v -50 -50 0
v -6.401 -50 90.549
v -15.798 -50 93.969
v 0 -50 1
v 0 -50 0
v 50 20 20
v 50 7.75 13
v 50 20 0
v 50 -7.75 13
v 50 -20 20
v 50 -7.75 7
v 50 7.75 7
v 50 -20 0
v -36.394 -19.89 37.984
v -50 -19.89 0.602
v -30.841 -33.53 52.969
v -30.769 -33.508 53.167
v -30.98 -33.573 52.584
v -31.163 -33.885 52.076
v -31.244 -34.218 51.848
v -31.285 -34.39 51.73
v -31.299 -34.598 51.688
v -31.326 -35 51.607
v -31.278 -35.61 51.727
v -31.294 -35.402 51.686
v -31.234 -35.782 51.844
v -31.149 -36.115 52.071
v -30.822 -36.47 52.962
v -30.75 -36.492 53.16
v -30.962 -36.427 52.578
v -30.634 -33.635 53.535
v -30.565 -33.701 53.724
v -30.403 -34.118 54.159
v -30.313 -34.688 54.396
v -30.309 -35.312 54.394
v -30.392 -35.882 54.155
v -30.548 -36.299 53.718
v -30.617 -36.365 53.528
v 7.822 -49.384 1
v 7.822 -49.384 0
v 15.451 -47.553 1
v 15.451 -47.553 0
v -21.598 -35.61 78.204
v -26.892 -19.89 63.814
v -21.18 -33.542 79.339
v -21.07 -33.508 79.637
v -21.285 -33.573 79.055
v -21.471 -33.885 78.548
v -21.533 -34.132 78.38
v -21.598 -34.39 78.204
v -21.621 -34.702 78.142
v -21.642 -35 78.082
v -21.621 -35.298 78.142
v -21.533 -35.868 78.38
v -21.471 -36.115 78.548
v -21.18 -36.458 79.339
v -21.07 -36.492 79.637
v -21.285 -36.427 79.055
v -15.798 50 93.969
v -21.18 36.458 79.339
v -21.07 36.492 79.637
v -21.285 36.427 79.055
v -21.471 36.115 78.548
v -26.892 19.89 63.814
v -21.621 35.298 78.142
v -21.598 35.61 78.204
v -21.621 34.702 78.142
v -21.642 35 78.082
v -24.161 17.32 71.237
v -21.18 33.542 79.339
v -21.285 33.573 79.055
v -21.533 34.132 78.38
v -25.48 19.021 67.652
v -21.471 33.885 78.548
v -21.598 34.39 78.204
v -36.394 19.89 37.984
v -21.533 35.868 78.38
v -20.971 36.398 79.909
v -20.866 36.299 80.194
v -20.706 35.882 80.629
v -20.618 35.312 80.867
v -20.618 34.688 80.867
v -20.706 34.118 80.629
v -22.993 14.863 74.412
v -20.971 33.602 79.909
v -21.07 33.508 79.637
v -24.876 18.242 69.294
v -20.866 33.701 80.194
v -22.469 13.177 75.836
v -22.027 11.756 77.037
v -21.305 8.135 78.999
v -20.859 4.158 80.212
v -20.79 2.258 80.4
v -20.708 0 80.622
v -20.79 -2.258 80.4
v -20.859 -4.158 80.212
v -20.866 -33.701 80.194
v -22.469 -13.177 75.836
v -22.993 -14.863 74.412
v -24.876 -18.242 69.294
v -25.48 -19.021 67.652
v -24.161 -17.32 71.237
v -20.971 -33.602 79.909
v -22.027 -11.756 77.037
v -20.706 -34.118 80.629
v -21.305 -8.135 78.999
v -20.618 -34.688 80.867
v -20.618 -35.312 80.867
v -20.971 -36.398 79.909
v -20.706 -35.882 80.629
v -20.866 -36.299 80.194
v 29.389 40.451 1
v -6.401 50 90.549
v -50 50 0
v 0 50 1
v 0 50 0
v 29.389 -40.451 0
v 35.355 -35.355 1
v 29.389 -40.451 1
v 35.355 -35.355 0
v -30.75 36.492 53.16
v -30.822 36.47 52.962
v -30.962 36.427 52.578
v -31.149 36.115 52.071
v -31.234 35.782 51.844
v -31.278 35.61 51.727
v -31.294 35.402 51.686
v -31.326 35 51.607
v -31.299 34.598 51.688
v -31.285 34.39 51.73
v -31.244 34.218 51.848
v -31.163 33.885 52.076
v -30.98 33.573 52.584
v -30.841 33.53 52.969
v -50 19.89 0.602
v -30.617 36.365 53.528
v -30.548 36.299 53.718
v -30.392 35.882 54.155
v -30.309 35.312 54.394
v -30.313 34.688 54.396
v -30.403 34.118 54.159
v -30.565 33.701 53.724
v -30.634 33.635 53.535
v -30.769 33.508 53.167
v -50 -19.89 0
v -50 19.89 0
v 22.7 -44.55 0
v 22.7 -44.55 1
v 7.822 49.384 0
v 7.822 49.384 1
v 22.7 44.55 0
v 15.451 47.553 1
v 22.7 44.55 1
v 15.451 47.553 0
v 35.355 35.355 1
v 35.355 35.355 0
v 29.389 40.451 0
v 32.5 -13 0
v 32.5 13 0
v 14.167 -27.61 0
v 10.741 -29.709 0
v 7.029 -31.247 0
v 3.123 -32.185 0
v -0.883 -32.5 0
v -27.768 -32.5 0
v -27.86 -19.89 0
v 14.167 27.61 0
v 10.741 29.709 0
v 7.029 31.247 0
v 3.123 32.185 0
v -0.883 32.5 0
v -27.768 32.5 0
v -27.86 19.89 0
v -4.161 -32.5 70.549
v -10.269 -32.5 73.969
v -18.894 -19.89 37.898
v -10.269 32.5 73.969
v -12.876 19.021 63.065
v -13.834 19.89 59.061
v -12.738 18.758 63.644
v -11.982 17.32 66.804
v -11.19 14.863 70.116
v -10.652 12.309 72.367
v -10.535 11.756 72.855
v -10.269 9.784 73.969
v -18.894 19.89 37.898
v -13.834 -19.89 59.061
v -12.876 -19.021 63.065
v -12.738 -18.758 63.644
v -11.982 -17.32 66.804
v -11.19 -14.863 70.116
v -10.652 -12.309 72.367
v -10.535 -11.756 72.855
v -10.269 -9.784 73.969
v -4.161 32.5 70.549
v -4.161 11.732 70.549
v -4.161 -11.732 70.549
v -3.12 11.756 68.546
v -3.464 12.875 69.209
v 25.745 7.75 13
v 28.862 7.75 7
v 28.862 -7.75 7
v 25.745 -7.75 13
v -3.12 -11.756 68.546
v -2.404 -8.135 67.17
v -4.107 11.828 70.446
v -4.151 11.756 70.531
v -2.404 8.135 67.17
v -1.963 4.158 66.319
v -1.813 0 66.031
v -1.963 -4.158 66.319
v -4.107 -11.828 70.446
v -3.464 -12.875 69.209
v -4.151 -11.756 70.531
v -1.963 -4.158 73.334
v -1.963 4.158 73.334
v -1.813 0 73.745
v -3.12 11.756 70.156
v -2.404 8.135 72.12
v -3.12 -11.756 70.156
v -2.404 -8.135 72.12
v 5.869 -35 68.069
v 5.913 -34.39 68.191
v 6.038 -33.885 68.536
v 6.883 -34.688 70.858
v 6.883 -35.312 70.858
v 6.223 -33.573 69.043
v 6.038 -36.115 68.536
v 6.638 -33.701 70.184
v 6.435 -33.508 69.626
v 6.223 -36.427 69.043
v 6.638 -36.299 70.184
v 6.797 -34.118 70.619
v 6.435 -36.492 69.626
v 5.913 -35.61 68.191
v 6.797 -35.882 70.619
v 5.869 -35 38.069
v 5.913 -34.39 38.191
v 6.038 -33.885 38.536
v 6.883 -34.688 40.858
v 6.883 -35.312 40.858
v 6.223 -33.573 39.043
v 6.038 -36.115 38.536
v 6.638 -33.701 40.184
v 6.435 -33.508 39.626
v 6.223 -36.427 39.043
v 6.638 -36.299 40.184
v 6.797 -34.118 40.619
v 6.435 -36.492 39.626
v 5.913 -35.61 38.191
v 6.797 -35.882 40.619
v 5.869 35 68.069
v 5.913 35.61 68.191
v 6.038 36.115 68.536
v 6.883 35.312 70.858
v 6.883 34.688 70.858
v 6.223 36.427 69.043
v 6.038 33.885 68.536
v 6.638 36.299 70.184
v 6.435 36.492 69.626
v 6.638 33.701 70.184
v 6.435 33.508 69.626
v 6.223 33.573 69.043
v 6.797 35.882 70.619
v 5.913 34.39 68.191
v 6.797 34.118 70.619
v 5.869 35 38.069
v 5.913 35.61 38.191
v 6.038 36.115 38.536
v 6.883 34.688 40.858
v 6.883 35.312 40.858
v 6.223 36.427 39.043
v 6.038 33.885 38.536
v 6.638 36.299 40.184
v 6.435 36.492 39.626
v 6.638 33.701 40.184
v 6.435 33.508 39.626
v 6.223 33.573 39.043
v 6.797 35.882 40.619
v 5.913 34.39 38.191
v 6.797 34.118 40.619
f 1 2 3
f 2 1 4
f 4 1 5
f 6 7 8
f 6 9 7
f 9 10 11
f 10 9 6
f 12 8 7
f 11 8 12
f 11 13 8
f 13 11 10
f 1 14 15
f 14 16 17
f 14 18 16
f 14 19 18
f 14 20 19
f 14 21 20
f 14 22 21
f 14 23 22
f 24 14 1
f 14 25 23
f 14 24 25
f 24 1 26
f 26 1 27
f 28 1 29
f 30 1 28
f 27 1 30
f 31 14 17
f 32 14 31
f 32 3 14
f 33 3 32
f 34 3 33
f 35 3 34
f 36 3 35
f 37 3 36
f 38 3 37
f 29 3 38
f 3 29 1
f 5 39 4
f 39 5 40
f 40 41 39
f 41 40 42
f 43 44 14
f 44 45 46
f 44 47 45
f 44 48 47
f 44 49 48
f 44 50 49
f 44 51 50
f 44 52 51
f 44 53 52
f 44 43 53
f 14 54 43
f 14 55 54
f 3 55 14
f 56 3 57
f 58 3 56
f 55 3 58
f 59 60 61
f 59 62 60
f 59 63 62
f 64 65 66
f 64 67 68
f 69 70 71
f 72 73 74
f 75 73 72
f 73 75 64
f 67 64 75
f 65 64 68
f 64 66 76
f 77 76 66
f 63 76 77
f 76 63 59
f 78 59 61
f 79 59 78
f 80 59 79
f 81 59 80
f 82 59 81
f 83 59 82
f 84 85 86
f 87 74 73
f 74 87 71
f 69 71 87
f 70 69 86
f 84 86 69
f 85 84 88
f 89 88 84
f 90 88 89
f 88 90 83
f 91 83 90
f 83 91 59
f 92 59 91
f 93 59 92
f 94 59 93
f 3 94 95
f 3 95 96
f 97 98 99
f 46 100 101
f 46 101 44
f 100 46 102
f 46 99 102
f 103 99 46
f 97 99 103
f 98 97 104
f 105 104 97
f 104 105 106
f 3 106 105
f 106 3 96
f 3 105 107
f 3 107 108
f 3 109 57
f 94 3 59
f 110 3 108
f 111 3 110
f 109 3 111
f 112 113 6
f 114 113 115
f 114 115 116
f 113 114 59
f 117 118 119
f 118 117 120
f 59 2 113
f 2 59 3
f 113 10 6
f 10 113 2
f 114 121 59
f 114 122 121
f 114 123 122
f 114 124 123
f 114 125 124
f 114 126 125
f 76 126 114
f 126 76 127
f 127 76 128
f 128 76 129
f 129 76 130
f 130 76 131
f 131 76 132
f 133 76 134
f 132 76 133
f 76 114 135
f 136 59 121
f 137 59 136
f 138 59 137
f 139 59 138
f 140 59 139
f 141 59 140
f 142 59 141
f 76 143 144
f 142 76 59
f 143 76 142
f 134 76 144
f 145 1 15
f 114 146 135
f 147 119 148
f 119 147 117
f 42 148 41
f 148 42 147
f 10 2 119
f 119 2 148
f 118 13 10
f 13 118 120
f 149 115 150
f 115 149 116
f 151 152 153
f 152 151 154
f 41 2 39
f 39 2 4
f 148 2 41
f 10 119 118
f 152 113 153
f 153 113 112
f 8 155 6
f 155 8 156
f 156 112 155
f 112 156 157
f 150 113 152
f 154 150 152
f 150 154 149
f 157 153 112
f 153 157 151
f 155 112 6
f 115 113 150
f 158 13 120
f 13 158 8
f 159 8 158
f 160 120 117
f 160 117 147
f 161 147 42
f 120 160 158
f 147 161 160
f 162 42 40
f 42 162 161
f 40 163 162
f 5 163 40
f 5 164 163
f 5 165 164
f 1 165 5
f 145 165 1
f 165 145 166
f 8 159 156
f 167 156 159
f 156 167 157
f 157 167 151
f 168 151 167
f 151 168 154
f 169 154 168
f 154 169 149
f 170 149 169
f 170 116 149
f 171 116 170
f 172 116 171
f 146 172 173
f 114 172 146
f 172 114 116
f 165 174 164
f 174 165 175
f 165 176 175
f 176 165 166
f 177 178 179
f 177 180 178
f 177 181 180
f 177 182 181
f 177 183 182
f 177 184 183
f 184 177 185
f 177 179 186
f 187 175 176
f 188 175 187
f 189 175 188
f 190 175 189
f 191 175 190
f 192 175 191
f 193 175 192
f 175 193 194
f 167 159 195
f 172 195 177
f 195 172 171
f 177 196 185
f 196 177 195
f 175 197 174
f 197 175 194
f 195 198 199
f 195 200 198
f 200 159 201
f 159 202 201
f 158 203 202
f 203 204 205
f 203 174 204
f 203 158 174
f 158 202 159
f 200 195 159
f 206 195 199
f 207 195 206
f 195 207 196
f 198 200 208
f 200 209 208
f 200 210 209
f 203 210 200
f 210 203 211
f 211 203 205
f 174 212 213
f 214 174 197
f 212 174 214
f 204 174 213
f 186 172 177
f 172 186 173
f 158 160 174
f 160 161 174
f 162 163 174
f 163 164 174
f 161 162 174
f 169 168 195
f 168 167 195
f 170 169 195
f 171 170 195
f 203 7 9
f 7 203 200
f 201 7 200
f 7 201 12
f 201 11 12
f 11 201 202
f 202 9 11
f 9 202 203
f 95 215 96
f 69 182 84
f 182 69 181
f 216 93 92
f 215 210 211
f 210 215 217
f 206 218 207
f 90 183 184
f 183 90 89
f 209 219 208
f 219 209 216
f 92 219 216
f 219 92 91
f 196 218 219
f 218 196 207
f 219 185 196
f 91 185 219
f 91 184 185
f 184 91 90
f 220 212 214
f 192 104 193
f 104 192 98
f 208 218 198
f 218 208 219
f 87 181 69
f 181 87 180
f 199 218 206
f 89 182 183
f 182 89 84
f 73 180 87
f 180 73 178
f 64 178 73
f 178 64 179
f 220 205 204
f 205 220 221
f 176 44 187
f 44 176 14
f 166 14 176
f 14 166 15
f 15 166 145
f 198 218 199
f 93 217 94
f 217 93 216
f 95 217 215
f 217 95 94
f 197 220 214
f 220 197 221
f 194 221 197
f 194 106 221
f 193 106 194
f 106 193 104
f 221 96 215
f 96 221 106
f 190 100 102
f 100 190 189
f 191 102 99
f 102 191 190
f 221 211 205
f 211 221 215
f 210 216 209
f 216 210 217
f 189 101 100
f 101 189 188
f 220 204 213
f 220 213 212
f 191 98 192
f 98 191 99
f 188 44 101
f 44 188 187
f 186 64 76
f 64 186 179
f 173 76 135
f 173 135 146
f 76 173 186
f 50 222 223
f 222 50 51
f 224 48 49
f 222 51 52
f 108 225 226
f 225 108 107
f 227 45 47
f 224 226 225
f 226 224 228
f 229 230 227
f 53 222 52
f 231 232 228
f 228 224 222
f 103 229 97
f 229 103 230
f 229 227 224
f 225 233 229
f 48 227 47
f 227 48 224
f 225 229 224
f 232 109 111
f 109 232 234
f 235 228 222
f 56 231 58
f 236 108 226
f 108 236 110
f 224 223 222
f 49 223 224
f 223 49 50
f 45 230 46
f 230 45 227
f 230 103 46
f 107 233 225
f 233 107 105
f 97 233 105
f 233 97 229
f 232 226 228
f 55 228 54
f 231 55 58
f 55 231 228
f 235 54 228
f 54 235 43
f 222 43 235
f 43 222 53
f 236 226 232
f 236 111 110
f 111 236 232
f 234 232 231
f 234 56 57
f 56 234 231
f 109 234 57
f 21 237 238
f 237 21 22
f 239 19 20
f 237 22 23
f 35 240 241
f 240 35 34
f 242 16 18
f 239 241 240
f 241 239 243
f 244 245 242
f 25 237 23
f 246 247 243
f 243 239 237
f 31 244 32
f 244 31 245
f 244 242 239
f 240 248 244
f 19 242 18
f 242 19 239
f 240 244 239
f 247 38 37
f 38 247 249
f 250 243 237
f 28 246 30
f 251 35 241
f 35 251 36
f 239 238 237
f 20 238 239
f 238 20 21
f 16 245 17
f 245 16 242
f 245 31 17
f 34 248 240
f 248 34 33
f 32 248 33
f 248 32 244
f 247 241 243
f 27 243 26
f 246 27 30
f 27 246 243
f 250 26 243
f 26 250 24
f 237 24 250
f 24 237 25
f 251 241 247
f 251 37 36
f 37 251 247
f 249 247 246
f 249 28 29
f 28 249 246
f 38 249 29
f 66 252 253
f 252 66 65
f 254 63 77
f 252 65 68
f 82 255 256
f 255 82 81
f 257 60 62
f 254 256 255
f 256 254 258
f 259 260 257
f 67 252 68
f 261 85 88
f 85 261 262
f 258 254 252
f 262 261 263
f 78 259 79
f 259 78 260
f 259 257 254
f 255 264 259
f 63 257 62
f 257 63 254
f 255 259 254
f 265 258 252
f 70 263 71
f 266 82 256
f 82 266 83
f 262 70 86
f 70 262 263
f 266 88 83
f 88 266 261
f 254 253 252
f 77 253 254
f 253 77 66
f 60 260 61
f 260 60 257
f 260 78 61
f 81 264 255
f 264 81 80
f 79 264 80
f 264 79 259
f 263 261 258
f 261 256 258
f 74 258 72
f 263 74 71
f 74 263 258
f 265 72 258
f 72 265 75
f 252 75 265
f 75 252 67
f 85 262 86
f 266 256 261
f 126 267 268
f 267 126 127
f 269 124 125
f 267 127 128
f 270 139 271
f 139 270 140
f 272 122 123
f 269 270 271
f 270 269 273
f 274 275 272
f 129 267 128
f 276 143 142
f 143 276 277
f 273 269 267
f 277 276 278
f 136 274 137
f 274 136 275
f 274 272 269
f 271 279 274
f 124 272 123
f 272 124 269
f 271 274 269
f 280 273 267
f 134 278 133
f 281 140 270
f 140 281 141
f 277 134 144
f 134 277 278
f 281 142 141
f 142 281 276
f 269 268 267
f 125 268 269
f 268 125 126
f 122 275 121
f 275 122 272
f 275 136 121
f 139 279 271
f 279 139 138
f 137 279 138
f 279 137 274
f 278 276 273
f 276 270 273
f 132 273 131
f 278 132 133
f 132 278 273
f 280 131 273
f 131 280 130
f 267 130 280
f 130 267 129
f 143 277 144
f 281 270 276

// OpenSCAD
module outer_stand(){
    difference(){
        hull(){
            cylinder(r=50, $fn=40);

            translate([-50, -50, 0])
            rotate([0, 20,0])
            cube([10, 100, 100]);

            translate([40, -20, 0])
            rotate([0, 0,0])
            cube([10, 40, 20]);
        }
        
        translate([0,0, -10])
        cube([200, 200, 20], center=true);
    }
}

difference(){
    outer_stand();
    translate([0,0,-20])
    scale([0.65,0.65, 1])
    outer_stand();
    
    // USB
    translate([50,0,10])
    cube([100, 15.5, 6], center=true);
    
    // Cable
    hull(){
    translate([-50, 0, 70])
    rotate([0, 110,0])
    cylinder(r=20, h=44);
   
    translate([-50, 0, 0])
    rotate([0, 110,0])
    cylinder(r=20, h=44);
    }
    
    // Mount
    translate([-50, -35, 90])
    rotate([0, 110,0])
    cylinder(r=1.5, h=60, $fn=15);
    
    translate([-50, -35, 60])
    rotate([0, 110,0])
    cylinder(r=1.5, h=60, $fn=15);
    
    translate([-50, 35, 90])
    rotate([0, 110,0])
    cylinder(r=1.5, h=60, $fn=15);
    
    translate([-50, 35, 60])
    rotate([0, 110,0])
    cylinder(r=1.5, h=60, $fn=15);
}
